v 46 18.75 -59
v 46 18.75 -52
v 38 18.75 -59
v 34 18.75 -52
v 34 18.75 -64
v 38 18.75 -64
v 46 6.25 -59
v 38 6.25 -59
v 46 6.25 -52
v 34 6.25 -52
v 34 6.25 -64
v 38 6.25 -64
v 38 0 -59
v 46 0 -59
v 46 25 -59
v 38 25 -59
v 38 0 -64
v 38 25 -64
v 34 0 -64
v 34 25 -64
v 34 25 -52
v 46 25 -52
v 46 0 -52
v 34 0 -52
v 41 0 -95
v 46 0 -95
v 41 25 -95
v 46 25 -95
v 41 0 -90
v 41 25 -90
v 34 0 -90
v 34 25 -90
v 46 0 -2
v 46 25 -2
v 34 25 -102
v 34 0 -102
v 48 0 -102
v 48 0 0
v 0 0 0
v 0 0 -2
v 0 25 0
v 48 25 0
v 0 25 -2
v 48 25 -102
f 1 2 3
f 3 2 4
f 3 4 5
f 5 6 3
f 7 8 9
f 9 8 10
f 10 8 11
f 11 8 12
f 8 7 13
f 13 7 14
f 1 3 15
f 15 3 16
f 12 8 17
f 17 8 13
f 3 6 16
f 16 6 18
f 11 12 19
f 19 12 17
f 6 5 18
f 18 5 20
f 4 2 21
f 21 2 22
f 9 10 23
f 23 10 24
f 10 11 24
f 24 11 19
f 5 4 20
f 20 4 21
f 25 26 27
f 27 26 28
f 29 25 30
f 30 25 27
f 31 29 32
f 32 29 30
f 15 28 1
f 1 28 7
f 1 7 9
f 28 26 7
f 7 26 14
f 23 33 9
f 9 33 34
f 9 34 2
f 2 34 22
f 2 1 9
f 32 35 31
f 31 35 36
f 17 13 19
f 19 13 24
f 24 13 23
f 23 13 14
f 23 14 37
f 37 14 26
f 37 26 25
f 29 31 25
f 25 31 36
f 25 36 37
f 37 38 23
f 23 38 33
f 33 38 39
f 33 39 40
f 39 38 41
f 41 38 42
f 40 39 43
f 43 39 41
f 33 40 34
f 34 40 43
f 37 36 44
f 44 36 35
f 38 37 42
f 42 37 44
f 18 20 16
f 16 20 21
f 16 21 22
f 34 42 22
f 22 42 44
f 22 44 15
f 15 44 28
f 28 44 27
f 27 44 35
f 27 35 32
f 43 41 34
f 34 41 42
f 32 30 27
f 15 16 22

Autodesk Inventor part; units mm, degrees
ref_plane "YZ Plane" through (0, 0, 0) normal (1, 0, 0) x (0, 1, 0)
ref_plane "XZ Plane" through (0, 0, 0) normal (0, 1, 0) x (-1, 0, 0)
ref_plane "XY Plane" through (0, 0, 0) normal (0, 0, 1) x (1, 0, 0)
sketch "Skizze1" plane through (0, 0, 0) normal (0, 1, 0) x (-1, 0, 0)
  line L0 (0, 0) -> (-48, 0)
  line L1 (-48, 0) -> (-48, -102)
  line L2 (-48, -102) -> (-34, -102)
  line L3 (-34, -102) -> (-34, -52)
  line L4 (-34, -52) -> (-46, -52)
  line L5 (-46, -52) -> (-46, -2)
  line L6 (-46, -2) -> (0, -2)
  line L7 (0, -2) -> (0, 0)
  dimension "d0" = 2
  dimension "d1" = 46
  dimension "d2" = 48
  dimension "d3" = 50
  dimension "d4" = 50
  dimension "d5" = 12
extrude "Extrusion1" add sketch "Skizze1" along normal blind 25
sketch "Skizze2" plane through (0, 25, 0) normal (0, 1, 0) x (1, 0, 0)
  line L0 (48, 0) -> (48, 102) projected
  line L1 (48, 102) -> (34, 102) projected
  line L2 (34, 102) -> (34, 52) projected
  line L3 (34, 52) -> (46, 52) projected
  line L4 (46, 52) -> (46, 2) projected
  line L5 (46, 2) -> (0, 2) projected
  line L6 (0, 2) -> (0, 0) projected
  line L7 (0, 0) -> (48, 0) projected
  line L8 (46, 59) -> (46, 95)
  line L9 (46, 95) -> (41, 95)
  line L10 (41, 95) -> (41, 90)
  line L11 (41, 90) -> (34, 90)
  line L12 (34, 64) -> (38, 64)
  line L13 (38, 64) -> (38, 59)
  line L14 (38, 59) -> (46, 59)
  point P0 (34, 77)
  point P1 (46, 77)
  point P2 (39, 59)
  dimension "d18" = 5
  dimension "d19" = 36
  dimension "d20" = 5
  dimension "d21" = 8
  dimension "d22" = 5
extrude "Extrusion2" cut sketch "Skizze2" against normal through all contours L11 L10 L9 L8 L14 L13 L12 L2
sketch "Skizze3" plane through (34, 0, -52) normal (0, 0, 1) x (1, 0, 0)
  line L0 (0, 0) -> (12, 0) projected
  line L1 (12, 0) -> (12, 25) projected
  line L2 (0, 25) -> (12, 25) projected
  line L3 (0, 0) -> (0, 25) projected
  line L4 (12, 0) -> (12, 25) projected
  line L5 (12, 6.25) -> (0, 6.25)
  line L6 (0, 0) -> (0, 25) projected
  line L7 (0, 18.75) -> (12, 18.75)
  line L8 (6, 6.25) -> (6, 18.75) construction
  point P0 (-34, 0)
  point P1 (6, 12.5)
  point P2 (0, 12.5)
  dimension "d15" = 12.5
extrude "Extrusion3" cut sketch "Skizze3" against normal up to surface (12 mm away) contours L3 L7 L1 L5
properties part number "ESP_stand"
